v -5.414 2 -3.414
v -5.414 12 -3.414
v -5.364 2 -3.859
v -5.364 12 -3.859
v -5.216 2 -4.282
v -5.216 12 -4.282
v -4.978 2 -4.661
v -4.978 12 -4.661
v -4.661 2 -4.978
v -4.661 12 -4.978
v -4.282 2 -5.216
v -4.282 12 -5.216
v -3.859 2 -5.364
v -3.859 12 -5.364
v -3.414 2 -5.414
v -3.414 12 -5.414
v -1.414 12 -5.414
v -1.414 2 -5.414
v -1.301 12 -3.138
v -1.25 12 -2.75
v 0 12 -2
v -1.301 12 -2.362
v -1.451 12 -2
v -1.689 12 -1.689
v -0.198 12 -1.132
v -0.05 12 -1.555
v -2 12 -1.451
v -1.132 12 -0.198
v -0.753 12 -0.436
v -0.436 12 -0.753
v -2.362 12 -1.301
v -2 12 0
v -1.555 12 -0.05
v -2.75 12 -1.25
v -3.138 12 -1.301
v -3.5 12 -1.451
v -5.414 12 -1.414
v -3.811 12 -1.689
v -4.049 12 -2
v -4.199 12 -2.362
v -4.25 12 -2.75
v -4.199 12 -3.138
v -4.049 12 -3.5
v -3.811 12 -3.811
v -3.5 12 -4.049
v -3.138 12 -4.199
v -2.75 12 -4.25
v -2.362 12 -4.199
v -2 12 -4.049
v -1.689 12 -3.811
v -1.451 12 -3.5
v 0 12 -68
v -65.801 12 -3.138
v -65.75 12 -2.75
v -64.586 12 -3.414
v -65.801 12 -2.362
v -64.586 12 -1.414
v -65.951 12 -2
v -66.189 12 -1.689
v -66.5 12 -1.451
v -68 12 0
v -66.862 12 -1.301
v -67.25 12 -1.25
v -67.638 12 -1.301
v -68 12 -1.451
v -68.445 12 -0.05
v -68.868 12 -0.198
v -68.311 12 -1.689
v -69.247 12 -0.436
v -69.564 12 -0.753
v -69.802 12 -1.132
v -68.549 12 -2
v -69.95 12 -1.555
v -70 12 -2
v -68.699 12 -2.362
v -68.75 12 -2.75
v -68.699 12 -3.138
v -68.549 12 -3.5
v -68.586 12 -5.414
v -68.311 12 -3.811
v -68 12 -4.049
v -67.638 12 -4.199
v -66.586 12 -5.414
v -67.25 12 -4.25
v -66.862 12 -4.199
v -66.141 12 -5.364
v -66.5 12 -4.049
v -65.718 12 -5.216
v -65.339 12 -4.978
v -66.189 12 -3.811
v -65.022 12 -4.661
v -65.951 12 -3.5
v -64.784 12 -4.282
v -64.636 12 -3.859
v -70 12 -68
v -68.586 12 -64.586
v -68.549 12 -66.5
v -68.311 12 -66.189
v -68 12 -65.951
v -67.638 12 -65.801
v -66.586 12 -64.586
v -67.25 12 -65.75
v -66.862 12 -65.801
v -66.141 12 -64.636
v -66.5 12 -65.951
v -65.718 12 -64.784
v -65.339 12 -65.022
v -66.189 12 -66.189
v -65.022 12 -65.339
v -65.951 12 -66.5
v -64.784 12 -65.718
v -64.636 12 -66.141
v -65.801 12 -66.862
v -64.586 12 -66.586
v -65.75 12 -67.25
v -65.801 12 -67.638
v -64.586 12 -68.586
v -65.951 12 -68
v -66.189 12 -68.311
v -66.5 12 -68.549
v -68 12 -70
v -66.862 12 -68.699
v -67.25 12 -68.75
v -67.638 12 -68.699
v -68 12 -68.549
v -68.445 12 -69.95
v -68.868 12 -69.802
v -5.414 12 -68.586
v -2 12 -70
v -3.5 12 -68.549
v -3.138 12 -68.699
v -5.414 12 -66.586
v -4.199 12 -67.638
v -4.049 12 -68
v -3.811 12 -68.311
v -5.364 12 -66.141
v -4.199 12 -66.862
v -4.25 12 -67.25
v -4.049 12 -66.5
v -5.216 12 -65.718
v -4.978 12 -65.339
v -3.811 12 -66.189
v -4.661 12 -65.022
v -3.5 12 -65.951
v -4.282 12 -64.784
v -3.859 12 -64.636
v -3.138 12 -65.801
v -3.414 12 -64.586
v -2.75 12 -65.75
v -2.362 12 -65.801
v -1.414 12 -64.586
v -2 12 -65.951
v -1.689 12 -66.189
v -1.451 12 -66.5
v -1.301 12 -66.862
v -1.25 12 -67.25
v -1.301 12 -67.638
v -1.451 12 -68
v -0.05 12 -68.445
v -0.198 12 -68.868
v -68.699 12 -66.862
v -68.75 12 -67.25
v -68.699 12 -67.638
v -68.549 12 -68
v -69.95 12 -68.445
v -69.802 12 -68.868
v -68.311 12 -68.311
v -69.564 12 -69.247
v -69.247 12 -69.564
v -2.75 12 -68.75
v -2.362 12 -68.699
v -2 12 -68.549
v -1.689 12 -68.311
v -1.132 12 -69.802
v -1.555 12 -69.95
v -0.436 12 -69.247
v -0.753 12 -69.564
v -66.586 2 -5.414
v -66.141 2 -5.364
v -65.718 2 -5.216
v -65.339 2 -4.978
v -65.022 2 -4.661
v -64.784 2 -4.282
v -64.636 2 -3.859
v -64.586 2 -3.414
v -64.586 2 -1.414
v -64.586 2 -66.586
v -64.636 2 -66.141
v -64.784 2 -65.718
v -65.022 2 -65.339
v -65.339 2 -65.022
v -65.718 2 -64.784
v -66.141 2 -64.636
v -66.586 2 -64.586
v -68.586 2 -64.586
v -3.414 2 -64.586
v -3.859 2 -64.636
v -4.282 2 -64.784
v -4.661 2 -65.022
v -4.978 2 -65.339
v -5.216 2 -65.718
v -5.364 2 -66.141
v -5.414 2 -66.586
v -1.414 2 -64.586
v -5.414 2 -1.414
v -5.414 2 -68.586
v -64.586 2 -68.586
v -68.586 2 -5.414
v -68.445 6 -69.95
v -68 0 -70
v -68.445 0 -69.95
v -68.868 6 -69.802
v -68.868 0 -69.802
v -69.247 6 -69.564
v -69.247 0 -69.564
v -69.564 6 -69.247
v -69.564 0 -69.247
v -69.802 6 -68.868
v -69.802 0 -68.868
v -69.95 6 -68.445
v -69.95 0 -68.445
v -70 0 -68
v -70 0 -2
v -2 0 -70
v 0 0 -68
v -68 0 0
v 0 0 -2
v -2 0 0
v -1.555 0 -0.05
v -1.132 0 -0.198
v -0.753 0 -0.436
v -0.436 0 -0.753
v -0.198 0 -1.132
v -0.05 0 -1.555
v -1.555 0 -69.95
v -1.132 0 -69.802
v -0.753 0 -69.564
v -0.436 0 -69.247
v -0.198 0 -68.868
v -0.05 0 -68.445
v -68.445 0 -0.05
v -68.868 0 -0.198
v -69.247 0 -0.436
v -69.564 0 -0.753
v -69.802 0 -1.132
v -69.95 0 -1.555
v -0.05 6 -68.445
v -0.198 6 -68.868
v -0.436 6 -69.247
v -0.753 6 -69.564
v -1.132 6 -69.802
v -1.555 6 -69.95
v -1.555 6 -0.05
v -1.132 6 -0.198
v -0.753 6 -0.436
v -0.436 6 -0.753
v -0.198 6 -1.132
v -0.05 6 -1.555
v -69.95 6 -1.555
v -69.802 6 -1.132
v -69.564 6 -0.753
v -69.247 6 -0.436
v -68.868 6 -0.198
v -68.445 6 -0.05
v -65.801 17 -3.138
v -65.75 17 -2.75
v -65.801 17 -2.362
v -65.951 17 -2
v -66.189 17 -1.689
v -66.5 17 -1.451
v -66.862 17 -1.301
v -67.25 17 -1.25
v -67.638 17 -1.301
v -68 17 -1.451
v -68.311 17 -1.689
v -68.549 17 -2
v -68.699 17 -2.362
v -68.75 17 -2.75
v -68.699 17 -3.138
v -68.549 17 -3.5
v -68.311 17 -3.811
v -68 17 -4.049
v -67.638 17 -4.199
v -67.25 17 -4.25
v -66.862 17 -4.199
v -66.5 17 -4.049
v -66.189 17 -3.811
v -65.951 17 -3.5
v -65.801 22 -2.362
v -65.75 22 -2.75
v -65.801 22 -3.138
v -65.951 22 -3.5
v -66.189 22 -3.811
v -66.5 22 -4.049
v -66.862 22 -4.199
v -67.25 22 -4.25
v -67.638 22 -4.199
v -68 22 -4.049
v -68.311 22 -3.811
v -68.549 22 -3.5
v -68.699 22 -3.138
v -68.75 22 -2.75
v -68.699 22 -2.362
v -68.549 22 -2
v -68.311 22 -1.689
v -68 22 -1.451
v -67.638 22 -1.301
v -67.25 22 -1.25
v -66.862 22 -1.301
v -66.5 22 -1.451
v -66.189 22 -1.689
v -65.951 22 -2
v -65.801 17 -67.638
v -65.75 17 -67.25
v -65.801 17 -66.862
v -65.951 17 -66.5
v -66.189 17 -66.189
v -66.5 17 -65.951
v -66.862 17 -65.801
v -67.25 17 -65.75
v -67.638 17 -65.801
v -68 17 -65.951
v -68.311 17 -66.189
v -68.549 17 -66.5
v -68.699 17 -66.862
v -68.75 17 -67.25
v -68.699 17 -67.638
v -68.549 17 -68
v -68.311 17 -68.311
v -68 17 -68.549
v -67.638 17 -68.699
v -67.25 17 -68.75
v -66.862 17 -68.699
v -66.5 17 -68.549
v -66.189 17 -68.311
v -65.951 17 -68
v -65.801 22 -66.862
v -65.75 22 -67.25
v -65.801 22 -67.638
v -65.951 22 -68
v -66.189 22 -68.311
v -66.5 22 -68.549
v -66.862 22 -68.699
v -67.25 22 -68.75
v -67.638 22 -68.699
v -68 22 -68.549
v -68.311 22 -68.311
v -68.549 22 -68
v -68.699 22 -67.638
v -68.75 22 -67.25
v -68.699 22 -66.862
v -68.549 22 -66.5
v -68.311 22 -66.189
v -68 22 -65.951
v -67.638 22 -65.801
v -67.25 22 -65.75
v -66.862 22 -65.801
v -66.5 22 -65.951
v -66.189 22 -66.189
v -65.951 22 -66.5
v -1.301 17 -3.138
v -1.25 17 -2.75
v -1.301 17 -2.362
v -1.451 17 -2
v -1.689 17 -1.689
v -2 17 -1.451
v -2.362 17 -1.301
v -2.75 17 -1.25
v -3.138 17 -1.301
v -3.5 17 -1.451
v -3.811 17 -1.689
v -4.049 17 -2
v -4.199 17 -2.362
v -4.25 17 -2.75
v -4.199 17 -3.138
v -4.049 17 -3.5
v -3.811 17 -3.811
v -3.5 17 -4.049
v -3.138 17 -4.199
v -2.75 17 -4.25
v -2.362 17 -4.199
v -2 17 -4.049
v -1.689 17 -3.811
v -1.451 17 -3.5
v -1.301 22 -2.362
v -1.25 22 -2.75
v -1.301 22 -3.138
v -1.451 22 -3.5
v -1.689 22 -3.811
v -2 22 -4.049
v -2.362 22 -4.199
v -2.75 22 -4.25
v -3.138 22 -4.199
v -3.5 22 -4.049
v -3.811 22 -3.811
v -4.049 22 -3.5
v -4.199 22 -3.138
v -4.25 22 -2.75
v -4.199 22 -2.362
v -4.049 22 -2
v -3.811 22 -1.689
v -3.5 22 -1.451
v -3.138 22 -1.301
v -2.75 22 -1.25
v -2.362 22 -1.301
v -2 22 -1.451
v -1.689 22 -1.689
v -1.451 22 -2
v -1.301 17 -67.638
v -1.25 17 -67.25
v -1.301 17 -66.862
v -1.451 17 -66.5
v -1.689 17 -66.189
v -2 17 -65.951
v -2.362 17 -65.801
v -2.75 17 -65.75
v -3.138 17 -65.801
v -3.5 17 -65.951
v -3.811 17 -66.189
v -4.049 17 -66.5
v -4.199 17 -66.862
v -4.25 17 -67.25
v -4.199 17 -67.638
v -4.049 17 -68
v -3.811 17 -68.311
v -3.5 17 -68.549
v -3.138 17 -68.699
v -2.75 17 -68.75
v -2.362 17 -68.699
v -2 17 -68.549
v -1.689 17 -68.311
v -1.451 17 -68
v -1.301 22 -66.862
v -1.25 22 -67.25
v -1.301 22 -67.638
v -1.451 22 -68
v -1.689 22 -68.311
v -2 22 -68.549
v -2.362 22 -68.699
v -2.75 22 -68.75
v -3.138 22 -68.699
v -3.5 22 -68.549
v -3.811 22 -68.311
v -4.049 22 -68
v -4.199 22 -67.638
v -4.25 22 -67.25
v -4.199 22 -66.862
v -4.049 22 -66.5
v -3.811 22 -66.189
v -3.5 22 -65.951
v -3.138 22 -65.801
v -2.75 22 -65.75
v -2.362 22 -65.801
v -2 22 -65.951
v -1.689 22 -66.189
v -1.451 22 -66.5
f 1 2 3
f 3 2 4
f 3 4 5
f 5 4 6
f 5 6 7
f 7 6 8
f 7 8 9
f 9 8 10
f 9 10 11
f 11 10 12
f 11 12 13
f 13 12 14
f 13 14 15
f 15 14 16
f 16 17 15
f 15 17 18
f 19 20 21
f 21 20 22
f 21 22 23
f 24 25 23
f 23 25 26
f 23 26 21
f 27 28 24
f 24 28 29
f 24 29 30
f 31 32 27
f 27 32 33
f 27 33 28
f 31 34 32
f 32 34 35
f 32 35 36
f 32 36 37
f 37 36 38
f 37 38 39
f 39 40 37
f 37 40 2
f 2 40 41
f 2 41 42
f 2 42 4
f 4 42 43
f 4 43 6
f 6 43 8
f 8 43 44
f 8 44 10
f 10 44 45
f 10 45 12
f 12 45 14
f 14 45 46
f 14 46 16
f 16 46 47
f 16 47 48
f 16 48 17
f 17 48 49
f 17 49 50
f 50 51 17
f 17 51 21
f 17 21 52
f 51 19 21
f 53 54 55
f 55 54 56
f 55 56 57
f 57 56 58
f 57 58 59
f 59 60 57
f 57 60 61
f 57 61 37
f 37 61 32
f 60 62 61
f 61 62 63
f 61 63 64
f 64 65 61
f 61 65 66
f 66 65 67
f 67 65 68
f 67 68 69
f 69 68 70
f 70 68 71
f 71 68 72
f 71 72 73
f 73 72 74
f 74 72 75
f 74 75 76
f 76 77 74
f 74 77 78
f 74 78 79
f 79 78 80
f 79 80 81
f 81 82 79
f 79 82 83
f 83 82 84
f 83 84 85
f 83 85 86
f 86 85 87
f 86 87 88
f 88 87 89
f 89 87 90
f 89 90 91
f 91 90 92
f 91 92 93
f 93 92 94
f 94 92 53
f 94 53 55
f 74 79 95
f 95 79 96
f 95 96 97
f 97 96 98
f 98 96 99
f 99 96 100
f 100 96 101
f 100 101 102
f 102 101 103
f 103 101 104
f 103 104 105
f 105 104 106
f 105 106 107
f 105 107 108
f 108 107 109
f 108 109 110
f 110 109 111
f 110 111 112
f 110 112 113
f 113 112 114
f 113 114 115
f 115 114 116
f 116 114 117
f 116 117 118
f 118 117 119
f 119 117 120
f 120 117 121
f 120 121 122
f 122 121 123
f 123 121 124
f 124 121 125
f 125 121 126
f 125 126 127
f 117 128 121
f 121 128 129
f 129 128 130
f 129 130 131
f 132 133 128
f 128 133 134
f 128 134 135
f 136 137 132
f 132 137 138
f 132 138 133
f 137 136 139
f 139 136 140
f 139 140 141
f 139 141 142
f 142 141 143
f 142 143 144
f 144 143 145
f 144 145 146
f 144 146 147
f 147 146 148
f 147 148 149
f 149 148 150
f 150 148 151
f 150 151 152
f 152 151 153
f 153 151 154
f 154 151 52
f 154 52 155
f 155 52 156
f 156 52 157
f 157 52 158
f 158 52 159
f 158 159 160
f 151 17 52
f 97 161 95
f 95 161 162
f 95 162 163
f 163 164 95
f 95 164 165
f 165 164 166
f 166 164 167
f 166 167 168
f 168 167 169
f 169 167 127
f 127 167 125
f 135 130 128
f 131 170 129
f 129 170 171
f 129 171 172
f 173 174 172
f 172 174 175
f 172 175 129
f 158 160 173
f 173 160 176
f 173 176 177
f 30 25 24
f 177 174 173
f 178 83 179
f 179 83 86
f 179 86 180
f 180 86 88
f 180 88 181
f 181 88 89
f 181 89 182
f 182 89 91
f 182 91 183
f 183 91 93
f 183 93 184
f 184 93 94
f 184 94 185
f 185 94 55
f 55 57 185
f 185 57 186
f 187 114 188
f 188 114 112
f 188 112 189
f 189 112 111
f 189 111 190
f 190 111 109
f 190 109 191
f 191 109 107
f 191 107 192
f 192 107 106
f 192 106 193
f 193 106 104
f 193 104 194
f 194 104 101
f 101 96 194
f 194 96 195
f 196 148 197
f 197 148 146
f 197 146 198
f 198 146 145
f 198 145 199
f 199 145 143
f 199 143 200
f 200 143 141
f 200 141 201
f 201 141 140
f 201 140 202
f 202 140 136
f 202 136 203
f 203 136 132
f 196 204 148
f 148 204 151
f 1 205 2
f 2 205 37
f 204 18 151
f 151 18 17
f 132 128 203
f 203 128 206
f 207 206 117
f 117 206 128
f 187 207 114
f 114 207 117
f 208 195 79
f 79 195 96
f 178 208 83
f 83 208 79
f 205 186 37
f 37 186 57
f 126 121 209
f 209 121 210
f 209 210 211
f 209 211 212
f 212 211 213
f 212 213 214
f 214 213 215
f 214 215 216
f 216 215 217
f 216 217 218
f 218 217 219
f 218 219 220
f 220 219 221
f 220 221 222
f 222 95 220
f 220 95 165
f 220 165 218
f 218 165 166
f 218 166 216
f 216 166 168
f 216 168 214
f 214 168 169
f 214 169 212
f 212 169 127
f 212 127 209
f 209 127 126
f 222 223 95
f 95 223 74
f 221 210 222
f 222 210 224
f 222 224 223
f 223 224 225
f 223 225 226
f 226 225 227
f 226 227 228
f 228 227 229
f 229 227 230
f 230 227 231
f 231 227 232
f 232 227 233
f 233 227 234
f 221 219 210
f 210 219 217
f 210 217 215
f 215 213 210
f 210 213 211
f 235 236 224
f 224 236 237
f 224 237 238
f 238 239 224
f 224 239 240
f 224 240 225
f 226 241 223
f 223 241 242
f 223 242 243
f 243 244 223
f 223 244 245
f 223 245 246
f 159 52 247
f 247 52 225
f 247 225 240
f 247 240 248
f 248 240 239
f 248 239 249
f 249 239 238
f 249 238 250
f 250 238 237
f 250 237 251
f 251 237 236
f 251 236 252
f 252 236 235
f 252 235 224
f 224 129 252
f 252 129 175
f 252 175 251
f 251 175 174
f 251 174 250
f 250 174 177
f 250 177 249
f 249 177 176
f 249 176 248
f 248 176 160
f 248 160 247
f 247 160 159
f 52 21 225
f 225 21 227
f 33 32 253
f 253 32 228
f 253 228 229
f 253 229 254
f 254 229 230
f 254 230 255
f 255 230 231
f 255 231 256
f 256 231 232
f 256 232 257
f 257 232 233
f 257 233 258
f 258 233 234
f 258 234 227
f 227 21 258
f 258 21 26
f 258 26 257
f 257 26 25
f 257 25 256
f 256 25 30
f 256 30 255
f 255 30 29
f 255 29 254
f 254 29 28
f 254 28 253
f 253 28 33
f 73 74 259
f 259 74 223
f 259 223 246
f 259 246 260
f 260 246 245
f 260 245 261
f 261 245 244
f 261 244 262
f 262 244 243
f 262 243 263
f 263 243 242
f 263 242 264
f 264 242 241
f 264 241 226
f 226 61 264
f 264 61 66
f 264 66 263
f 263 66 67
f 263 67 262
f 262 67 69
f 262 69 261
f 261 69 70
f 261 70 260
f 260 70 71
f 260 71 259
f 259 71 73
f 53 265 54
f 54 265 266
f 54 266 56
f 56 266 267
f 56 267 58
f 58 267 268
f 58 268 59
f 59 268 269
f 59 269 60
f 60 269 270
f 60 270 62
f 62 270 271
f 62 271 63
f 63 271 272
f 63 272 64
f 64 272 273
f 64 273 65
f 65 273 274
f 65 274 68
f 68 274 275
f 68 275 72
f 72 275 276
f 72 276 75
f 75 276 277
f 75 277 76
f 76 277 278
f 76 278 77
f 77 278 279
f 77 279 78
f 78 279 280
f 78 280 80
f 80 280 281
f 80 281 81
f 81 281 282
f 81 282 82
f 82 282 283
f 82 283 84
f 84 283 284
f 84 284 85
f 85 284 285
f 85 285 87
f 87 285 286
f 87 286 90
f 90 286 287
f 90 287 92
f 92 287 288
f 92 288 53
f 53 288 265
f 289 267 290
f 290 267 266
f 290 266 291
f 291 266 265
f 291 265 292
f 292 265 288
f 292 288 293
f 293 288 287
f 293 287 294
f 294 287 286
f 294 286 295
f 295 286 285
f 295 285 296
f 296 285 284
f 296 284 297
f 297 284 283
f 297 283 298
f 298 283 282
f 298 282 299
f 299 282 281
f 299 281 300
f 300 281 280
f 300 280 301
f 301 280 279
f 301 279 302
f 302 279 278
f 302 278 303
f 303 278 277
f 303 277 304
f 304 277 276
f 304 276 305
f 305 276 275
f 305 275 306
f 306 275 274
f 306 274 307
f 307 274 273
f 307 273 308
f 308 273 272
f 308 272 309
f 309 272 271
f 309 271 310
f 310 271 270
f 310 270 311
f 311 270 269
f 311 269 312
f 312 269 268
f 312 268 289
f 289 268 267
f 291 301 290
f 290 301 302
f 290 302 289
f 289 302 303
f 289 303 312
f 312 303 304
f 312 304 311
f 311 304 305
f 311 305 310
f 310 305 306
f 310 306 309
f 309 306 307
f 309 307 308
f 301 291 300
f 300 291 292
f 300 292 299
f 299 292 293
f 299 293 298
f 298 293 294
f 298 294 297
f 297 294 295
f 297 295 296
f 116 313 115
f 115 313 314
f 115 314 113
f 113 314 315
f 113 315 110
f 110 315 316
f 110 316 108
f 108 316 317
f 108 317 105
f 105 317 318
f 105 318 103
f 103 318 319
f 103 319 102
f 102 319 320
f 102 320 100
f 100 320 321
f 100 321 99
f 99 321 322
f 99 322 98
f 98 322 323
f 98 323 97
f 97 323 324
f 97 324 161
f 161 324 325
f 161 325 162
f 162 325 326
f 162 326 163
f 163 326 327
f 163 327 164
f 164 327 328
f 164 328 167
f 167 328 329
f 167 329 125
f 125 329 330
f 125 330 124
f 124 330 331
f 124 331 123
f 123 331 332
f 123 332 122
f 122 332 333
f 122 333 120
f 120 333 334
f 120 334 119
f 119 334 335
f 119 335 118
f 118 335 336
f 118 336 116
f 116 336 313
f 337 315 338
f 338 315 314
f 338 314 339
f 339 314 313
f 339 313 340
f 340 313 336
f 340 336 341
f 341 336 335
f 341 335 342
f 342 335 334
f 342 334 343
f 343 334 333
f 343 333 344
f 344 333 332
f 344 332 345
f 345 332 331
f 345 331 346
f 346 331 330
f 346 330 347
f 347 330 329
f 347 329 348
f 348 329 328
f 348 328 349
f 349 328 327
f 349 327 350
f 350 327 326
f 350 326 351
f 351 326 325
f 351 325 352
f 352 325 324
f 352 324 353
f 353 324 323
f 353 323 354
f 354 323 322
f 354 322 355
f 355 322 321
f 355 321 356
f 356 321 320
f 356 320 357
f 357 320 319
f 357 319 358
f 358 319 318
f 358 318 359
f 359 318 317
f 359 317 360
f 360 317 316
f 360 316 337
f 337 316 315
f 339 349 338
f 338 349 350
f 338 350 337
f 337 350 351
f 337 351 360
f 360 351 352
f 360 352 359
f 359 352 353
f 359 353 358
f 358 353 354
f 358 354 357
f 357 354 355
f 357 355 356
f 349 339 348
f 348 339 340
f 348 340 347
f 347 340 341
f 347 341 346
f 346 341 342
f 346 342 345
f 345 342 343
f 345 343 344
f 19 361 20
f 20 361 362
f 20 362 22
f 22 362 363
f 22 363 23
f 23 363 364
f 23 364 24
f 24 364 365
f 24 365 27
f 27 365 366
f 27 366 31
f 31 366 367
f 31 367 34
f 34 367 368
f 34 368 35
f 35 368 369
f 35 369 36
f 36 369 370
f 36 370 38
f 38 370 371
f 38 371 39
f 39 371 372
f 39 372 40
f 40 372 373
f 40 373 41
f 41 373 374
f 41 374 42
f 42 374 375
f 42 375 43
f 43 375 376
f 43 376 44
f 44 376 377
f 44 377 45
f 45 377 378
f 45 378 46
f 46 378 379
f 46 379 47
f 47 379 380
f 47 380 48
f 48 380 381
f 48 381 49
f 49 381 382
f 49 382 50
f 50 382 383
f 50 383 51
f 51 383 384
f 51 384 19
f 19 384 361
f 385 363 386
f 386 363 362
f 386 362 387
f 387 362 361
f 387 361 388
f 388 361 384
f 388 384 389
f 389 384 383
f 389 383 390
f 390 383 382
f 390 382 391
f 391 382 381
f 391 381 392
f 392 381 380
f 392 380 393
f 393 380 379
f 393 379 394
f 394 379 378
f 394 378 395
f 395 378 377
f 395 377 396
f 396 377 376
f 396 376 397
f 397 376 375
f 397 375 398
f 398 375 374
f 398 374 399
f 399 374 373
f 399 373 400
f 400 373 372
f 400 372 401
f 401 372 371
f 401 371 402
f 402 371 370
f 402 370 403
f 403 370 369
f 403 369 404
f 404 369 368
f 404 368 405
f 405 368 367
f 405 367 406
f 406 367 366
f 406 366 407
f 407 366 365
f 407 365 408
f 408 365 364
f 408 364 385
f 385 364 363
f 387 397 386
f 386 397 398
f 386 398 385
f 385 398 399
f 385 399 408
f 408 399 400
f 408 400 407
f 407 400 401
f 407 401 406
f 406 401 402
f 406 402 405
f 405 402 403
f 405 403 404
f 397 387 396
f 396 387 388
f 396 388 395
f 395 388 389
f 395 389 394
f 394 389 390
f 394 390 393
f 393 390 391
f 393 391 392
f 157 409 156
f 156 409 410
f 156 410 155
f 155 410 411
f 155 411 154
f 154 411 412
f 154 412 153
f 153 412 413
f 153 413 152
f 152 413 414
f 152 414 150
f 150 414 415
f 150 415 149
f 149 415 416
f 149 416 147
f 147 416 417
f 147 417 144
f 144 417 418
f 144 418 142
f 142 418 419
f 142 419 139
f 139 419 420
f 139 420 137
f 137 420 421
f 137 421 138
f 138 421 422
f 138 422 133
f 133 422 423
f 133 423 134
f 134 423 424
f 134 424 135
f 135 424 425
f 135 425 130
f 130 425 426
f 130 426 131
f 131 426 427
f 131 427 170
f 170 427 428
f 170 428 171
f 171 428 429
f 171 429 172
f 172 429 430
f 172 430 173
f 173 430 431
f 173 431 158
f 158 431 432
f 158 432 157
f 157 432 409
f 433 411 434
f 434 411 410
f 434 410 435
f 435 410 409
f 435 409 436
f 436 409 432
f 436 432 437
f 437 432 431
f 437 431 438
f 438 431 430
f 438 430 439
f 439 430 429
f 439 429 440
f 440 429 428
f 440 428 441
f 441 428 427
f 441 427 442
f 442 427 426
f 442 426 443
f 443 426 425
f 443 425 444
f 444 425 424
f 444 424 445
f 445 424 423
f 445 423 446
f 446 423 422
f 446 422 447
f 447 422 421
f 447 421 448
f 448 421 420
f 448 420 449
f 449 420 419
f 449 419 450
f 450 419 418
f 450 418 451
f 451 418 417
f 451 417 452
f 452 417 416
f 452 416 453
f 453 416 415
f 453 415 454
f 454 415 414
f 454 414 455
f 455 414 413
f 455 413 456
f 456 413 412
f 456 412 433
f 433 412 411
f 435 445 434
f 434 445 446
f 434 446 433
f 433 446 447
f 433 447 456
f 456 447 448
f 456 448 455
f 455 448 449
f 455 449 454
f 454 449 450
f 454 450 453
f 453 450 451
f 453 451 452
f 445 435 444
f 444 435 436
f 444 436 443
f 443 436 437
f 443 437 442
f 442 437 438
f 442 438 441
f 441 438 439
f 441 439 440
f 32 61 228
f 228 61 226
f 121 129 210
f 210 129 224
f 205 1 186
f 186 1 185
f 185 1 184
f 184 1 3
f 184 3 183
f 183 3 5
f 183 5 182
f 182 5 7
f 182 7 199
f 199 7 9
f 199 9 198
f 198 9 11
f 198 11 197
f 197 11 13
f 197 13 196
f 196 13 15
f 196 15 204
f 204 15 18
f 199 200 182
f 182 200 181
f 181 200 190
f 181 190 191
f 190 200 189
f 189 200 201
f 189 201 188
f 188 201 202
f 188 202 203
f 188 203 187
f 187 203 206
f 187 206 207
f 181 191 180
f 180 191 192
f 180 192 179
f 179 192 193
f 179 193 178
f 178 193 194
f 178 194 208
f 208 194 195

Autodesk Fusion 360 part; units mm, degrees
sketch "Sketch1" plane through (0, 0, 0) normal (0, 1, 0) x (1, 0, 0)
  line L0 (0, 0) -> (-70, 0)
  line L1 (-70, 0) -> (-70, 70)
  line L2 (-70, 70) -> (0, 70)
  line L3 (0, 70) -> (0, 0)
  dimension "d1" = 70
  dimension "d2" = 70
extrude "Extrude1" add sketch "Sketch1" along normal blind 2
sketch "Sketch2" plane through (0, 2, 0) normal (0, 1, 0) x (-1, 0, 0)
  line L0 (0, -70) -> (70, -70)
  line L1 (70, -70) -> (70, 0)
  line L2 (70, 0) -> (0, 0)
  line L3 (0, 0) -> (0, -70)
  circle A0 centre (2.7499, -2.7499) radius 1.5
  line L4 (70, -70) -> (73.889, -70) construction
  line L5 (0, -70) -> (3.889, -70) construction
  circle A1 centre (67.2501, -67.2501) radius 1.5
  circle A2 centre (2.7499, -67.2501) radius 1.5
  circle A3 centre (67.2501, -2.7499) radius 1.5
  dimension "d5" = 3.889
  dimension "d6" = 3
  dimension "d7" = 3.889
  dimension "d9" = 3.889
  dimension "d11" = 3.889
  dimension "d12" = 3
  dimension "d13" = 3
  dimension "d14" = 3
extrude "Extrude2" add sketch "Sketch2" along normal blind 20 contours A0 | A1 | A2 | A3
fillet "Fillet1" radius 2 4 edges at (-70, 1, 0) (0, 1, 0) (0, 1, -70) (-70, 1, -70)
sketch "Sketch3" plane through (0, 2, 0) normal (0, 1, 0) x (-1, 0, 0)
  arc A0 (68, -70) -> (70, -68) centre (68, -68) ccw
  line L0 (70, -68) -> (70, -2)
  arc A1 (70, -2) -> (68, 0) centre (68, -2) ccw
  line L1 (68, 0) -> (2, 0)
  arc A2 (2, 0) -> (0, -2) centre (2, -2) ccw
  line L2 (0, -2) -> (0, -68)
  arc A3 (0, -68) -> (2, -70) centre (2, -68) ccw
  line L3 (2, -70) -> (68, -70)
  circle A4 centre (67.2501, -2.7499) radius 1.5
  circle A5 centre (67.2501, -67.2501) radius 1.5
  circle A6 centre (2.7499, -2.7499) radius 1.5
  circle A7 centre (2.7499, -67.2501) radius 1.5
  line L4 (0, 0) -> (70, 0)
  line L5 (70, 0) -> (70, -70)
  line L6 (70, -70) -> (0, -70)
  line L7 (0, -70) -> (0, 0)
  line L8 (68.0791, -66) -> (68, -66)
  line L9 (36, -1.414) -> (5.414, -1.414)
  line L10 (2, -5.414) -> (5.414, -5.414)
  line L11 (5.414, -5.414) -> (5.414, -1.414)
  line L12 (2, -5.414) -> (1.414, -5.414)
  line L13 (1.414, -15) -> (1.414, -5.414)
  line L14 (1.414, -15) -> (1.414, -64.586)
  line L15 (1.414, -64.586) -> (5.414, -64.586)
  line L16 (5.414, -64.586) -> (5.414, -68.586)
  line L17 (32, -68.586) -> (5.414, -68.586)
  line L18 (32, -68.586) -> (64.586, -68.586)
  line L19 (64.586, -68.586) -> (64.586, -64.586)
  line L20 (64.586, -64.586) -> (68.586, -64.586)
  line L21 (36, -1.414) -> (64.586, -1.414)
  line L22 (64.586, -1.414) -> (64.586, -5.414)
  line L23 (68.586, -24) -> (68.586, -5.414)
  line L24 (64.586, -5.414) -> (68.586, -5.414)
  line L25 (68.586, -24) -> (68.586, -64.586)
  line L26 (68, -66) -> (68, -65.951)
  dimension "d22" = 5.414
  dimension "d29" = 90
extrude "Extrude3" add sketch "Sketch3" along normal blind 10 contours A0 L0 A1 L1 A2 L2 A3 L3 L4 L5 L6 L7
fillet "Fillet2" radius 2 2 edges at (-5.414, 7, -64.586) (-64.586, 7, -64.586)
fillet "Fillet3" radius 2 2 edges at (-64.586, 7, -5.414) (-5.414, 7, -5.414)
